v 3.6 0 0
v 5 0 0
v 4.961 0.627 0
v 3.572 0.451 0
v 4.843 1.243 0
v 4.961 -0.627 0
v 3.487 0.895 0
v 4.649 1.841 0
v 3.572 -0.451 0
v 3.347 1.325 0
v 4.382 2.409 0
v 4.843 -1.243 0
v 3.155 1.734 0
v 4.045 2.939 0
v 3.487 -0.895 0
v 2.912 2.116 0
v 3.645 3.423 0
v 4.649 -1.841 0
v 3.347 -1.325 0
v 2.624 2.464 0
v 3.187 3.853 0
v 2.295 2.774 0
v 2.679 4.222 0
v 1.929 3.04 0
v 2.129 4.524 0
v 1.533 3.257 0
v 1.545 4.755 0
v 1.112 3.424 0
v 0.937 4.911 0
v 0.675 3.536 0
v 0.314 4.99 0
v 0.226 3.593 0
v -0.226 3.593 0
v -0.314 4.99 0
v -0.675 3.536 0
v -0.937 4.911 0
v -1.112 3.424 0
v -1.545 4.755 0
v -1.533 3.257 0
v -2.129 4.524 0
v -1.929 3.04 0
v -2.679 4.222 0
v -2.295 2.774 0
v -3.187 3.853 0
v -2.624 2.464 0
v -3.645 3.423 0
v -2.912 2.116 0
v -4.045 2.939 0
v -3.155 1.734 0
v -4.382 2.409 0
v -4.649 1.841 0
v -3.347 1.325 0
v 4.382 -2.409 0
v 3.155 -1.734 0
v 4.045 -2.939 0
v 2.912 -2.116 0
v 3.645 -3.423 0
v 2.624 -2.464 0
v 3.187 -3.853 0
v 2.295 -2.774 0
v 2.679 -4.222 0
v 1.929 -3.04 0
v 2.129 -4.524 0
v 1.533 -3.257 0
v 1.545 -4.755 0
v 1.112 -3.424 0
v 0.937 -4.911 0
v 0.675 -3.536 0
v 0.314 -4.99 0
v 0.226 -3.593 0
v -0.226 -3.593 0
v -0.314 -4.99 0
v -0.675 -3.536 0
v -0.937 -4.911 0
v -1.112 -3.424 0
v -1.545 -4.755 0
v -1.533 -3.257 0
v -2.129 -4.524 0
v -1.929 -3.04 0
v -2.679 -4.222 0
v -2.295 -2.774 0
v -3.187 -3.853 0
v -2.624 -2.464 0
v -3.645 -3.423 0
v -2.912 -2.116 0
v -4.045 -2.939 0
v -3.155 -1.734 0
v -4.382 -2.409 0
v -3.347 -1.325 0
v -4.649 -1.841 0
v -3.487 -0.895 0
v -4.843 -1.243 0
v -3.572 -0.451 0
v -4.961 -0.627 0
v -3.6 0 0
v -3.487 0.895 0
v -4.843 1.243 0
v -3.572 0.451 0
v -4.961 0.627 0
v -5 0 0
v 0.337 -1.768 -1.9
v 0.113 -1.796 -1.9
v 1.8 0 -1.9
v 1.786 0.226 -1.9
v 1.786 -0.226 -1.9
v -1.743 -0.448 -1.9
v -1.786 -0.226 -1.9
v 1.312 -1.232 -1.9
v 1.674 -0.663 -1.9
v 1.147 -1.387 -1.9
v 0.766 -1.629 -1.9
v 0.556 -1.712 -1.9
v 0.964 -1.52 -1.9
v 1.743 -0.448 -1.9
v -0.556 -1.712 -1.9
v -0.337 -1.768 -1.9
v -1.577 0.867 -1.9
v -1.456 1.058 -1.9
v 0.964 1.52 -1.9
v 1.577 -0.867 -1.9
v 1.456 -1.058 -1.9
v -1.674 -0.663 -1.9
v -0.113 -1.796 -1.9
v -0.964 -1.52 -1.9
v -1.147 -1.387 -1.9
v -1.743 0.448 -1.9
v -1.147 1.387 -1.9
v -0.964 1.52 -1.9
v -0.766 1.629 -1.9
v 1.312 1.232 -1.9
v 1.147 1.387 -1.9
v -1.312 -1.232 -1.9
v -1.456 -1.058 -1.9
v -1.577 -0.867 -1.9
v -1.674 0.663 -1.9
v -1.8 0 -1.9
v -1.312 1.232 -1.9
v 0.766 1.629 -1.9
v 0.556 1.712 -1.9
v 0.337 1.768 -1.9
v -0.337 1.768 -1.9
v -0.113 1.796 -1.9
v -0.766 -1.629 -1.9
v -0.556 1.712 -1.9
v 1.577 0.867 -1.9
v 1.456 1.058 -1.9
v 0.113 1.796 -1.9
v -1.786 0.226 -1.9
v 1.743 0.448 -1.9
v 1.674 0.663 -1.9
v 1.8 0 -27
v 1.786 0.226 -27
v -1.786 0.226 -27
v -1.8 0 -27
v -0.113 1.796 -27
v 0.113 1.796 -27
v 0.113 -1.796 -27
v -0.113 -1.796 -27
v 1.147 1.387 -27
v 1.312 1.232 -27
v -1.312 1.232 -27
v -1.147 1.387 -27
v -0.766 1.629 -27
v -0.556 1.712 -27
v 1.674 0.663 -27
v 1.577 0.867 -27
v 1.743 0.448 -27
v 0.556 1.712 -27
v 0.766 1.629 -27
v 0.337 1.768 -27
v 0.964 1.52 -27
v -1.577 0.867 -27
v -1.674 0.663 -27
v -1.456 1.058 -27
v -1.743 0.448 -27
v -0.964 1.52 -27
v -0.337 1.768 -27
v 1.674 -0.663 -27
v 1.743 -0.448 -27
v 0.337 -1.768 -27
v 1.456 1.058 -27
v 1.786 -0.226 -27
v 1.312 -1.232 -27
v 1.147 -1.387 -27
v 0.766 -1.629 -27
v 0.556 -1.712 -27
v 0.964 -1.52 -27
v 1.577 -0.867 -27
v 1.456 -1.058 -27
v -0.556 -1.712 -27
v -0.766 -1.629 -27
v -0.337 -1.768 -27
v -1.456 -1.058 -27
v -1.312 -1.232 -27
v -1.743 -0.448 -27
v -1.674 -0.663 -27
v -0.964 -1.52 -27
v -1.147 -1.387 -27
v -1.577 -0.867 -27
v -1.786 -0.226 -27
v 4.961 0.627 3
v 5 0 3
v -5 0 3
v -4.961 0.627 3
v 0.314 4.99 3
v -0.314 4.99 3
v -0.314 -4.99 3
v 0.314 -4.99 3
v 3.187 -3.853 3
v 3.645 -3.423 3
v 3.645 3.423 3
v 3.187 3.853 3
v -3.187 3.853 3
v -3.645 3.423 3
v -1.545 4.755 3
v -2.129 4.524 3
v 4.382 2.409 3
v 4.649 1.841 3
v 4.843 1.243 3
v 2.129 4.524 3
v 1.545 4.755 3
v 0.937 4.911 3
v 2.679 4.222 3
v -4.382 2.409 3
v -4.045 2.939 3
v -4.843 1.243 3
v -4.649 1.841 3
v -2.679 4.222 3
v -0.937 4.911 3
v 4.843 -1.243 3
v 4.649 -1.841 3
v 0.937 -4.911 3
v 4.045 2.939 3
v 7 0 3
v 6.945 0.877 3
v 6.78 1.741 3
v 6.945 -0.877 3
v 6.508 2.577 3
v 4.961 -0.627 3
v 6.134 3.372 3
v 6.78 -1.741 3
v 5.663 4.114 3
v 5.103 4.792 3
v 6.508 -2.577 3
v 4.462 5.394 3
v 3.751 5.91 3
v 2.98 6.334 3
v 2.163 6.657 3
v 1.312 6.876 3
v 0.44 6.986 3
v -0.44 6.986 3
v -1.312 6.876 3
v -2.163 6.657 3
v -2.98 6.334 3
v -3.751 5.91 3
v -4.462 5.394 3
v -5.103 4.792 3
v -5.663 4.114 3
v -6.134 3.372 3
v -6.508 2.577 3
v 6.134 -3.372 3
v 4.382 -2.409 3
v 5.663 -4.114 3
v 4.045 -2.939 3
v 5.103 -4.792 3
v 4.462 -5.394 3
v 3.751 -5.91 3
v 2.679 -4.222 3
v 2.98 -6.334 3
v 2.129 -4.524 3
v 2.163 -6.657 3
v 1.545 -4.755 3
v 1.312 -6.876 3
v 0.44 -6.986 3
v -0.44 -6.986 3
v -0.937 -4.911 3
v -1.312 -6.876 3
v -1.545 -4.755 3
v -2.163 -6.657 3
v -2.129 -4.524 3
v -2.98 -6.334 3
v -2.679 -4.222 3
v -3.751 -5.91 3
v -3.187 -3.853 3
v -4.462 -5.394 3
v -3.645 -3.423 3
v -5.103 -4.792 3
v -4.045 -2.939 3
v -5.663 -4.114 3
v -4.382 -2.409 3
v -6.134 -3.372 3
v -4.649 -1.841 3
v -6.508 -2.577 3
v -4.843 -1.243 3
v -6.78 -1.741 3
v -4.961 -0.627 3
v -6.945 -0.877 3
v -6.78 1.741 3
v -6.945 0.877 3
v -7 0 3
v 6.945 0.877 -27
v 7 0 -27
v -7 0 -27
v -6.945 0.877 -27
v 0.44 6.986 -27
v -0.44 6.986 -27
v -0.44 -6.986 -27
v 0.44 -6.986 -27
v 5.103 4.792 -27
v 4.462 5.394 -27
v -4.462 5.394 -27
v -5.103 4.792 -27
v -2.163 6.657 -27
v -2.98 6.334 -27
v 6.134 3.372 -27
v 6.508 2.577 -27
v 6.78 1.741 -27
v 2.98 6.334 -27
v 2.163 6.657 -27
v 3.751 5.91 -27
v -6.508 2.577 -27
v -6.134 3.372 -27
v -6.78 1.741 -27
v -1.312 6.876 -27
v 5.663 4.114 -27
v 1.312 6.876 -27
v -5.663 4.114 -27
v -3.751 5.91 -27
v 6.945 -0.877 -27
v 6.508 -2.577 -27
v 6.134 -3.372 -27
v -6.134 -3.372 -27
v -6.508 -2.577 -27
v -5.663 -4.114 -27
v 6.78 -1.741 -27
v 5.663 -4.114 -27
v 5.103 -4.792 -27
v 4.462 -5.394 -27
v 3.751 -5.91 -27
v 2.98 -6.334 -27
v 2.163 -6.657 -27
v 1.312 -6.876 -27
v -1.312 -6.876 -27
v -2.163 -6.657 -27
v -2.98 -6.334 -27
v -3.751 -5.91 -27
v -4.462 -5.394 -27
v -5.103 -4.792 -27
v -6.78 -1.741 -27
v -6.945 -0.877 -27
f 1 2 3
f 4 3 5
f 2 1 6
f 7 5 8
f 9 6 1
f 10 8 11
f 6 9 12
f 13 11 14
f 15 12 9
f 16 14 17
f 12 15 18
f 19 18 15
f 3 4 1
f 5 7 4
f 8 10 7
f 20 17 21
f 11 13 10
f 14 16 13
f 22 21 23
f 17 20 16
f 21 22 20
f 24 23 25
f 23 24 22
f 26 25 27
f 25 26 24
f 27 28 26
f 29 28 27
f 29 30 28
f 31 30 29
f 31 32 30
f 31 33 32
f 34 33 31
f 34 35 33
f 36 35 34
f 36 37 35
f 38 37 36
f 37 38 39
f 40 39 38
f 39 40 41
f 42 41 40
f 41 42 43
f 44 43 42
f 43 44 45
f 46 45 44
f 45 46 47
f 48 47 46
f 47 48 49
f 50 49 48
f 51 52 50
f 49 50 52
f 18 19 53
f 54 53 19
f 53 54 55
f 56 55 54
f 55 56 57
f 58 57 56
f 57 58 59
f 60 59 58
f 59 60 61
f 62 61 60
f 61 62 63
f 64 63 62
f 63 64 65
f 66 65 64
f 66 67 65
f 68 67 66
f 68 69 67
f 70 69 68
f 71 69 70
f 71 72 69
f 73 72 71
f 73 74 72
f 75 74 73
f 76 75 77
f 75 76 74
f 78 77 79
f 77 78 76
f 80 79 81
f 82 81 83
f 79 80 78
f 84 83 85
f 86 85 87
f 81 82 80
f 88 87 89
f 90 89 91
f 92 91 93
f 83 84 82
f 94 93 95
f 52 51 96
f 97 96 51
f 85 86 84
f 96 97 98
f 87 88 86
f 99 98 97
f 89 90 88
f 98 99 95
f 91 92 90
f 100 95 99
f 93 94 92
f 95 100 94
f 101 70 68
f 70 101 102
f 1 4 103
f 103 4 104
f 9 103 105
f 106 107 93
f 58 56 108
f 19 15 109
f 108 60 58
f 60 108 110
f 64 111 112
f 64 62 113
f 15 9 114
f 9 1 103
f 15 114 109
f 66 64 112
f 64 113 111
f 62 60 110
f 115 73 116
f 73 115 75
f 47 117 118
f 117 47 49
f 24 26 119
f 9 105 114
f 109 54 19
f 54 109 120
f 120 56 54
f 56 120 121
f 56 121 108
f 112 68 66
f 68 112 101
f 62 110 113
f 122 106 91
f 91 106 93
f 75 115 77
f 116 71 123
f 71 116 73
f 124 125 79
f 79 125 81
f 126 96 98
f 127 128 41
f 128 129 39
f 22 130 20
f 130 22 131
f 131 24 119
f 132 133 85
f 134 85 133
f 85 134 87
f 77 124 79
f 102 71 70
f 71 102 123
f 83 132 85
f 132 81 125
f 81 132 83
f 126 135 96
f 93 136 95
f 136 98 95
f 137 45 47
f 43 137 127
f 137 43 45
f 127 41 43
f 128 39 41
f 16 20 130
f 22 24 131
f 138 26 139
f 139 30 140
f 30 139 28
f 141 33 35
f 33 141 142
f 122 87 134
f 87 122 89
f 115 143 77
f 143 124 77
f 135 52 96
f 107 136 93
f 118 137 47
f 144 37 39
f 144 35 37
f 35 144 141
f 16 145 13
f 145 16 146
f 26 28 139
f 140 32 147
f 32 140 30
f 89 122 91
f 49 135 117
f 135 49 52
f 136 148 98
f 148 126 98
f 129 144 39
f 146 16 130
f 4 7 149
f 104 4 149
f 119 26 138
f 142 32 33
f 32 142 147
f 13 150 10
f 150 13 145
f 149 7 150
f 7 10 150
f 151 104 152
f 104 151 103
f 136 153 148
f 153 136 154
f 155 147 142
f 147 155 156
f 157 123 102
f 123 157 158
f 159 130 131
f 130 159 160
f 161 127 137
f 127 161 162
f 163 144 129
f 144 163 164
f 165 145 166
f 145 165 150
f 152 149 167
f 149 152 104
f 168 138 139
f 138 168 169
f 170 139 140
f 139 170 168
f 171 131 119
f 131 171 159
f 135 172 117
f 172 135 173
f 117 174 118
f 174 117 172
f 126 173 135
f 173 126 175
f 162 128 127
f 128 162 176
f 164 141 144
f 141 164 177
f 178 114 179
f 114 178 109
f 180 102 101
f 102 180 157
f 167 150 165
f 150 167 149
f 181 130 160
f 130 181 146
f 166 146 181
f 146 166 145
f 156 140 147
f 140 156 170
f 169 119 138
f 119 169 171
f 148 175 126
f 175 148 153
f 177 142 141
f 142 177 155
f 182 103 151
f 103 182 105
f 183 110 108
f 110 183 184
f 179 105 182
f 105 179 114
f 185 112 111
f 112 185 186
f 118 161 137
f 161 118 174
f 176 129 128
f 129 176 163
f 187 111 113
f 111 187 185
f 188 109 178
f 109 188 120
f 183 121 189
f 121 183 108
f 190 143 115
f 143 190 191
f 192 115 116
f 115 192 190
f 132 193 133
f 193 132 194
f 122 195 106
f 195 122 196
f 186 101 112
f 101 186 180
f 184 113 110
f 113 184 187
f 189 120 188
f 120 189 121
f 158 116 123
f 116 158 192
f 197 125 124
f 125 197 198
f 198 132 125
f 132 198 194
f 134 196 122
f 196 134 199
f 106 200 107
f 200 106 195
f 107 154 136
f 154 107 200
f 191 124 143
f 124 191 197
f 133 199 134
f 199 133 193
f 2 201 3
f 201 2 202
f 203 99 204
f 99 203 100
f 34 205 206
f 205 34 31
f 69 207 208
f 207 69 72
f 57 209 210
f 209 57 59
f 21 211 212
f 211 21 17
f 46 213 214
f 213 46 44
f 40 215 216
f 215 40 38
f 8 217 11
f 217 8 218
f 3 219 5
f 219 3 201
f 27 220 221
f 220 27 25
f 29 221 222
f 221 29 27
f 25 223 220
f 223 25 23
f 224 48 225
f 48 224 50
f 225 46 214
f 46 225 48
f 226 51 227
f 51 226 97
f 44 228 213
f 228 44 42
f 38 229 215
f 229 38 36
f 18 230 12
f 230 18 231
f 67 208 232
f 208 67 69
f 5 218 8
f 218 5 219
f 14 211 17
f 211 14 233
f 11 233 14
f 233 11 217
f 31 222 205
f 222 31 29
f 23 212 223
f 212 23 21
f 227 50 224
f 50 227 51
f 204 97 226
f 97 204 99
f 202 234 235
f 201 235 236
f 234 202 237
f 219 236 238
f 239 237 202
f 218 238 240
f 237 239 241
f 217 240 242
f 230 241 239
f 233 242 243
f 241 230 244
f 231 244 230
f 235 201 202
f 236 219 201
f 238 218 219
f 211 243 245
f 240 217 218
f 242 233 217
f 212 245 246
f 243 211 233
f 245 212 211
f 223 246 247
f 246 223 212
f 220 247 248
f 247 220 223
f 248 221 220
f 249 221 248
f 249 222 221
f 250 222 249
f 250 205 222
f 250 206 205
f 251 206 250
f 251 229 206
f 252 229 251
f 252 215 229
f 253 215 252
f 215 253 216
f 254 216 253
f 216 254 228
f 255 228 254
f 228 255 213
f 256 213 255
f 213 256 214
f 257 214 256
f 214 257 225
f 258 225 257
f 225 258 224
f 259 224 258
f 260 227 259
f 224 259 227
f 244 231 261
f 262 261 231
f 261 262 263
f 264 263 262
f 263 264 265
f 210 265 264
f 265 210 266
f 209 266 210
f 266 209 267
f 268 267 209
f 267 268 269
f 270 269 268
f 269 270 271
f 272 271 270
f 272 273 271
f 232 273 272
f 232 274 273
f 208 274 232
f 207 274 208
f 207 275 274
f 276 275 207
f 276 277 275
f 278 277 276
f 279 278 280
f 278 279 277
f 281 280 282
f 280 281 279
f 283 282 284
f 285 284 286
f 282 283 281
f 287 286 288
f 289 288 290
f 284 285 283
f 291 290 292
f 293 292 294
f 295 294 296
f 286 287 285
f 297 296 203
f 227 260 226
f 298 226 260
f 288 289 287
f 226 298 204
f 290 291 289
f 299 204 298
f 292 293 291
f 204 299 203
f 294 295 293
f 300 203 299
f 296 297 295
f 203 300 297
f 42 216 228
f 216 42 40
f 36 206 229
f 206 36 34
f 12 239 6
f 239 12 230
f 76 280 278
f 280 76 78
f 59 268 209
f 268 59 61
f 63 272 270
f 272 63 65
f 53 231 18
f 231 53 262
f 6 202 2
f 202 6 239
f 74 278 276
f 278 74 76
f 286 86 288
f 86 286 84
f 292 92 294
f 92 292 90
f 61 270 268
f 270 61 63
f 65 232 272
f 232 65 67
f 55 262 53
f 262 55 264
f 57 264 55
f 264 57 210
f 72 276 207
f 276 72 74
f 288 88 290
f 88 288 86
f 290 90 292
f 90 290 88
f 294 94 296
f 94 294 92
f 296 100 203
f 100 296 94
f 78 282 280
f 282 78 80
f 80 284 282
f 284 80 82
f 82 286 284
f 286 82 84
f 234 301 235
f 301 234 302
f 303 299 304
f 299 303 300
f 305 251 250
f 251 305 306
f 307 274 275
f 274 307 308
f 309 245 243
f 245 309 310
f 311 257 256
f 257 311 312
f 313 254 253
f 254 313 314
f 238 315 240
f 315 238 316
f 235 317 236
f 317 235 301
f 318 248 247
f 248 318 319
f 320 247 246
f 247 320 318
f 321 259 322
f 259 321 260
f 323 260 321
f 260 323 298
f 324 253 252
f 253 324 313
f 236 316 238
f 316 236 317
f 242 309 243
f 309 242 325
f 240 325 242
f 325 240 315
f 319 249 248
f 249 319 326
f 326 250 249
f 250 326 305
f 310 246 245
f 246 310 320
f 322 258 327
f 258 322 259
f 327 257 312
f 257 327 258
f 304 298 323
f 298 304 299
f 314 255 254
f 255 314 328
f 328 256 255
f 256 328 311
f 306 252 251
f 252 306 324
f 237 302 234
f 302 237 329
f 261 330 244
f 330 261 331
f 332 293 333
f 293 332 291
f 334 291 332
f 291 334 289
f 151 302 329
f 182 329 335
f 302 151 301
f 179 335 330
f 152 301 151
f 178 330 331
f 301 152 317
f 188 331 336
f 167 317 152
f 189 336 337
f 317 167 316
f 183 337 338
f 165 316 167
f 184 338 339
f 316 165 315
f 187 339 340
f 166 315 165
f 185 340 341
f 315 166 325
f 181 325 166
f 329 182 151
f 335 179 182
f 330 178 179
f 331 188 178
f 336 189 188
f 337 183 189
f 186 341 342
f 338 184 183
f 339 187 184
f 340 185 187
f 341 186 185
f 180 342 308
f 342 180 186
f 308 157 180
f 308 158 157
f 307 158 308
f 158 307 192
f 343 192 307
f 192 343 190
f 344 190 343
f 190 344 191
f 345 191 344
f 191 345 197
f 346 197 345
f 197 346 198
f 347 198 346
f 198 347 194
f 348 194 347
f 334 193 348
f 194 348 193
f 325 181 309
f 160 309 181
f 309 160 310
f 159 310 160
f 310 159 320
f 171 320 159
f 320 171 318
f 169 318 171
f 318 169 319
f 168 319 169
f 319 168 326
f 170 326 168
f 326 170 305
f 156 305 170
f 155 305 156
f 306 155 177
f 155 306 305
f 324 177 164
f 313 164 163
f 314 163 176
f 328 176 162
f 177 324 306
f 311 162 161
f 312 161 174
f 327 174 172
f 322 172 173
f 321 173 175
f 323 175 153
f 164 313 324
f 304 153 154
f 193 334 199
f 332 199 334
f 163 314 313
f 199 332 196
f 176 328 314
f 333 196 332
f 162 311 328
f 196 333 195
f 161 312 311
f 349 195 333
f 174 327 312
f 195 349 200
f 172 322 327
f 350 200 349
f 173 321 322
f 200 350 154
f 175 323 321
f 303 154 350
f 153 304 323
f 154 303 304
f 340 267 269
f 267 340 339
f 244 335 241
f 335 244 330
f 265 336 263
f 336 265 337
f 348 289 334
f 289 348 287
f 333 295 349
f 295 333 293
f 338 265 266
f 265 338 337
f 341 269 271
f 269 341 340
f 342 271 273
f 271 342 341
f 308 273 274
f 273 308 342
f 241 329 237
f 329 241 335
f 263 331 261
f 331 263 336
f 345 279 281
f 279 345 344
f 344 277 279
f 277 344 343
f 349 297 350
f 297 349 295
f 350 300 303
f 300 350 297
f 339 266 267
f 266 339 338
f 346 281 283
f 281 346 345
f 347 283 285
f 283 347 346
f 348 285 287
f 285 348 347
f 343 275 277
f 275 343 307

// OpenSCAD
$fn = 50;


difference() {
	union() {
		translate(v = [0, 0, -27.0000000000]) {
			cylinder(h = 30, r = 7.0000000000);
		}
	}
	union() {
		translate(v = [0, 0, 0]) {
			rotate(a = [0, 0, 0]) {
				difference() {
					union() {
						translate(v = [0, 0, -30.0000000000]) {
							cylinder(h = 30, r = 1.5000000000);
						}
						translate(v = [0, 0, -1.9000000000]) {
							cylinder(h = 1.9000000000, r1 = 1.8000000000, r2 = 3.6000000000);
						}
						translate(v = [0, 0, -30.0000000000]) {
							cylinder(h = 30, r = 1.8000000000);
						}
						translate(v = [0, 0, -30.0000000000]) {
							cylinder(h = 30, r = 1.5000000000);
						}
					}
					union();
				}
			}
		}
		#cylinder(h = 3, r = 5.0000000000);
	}
}
